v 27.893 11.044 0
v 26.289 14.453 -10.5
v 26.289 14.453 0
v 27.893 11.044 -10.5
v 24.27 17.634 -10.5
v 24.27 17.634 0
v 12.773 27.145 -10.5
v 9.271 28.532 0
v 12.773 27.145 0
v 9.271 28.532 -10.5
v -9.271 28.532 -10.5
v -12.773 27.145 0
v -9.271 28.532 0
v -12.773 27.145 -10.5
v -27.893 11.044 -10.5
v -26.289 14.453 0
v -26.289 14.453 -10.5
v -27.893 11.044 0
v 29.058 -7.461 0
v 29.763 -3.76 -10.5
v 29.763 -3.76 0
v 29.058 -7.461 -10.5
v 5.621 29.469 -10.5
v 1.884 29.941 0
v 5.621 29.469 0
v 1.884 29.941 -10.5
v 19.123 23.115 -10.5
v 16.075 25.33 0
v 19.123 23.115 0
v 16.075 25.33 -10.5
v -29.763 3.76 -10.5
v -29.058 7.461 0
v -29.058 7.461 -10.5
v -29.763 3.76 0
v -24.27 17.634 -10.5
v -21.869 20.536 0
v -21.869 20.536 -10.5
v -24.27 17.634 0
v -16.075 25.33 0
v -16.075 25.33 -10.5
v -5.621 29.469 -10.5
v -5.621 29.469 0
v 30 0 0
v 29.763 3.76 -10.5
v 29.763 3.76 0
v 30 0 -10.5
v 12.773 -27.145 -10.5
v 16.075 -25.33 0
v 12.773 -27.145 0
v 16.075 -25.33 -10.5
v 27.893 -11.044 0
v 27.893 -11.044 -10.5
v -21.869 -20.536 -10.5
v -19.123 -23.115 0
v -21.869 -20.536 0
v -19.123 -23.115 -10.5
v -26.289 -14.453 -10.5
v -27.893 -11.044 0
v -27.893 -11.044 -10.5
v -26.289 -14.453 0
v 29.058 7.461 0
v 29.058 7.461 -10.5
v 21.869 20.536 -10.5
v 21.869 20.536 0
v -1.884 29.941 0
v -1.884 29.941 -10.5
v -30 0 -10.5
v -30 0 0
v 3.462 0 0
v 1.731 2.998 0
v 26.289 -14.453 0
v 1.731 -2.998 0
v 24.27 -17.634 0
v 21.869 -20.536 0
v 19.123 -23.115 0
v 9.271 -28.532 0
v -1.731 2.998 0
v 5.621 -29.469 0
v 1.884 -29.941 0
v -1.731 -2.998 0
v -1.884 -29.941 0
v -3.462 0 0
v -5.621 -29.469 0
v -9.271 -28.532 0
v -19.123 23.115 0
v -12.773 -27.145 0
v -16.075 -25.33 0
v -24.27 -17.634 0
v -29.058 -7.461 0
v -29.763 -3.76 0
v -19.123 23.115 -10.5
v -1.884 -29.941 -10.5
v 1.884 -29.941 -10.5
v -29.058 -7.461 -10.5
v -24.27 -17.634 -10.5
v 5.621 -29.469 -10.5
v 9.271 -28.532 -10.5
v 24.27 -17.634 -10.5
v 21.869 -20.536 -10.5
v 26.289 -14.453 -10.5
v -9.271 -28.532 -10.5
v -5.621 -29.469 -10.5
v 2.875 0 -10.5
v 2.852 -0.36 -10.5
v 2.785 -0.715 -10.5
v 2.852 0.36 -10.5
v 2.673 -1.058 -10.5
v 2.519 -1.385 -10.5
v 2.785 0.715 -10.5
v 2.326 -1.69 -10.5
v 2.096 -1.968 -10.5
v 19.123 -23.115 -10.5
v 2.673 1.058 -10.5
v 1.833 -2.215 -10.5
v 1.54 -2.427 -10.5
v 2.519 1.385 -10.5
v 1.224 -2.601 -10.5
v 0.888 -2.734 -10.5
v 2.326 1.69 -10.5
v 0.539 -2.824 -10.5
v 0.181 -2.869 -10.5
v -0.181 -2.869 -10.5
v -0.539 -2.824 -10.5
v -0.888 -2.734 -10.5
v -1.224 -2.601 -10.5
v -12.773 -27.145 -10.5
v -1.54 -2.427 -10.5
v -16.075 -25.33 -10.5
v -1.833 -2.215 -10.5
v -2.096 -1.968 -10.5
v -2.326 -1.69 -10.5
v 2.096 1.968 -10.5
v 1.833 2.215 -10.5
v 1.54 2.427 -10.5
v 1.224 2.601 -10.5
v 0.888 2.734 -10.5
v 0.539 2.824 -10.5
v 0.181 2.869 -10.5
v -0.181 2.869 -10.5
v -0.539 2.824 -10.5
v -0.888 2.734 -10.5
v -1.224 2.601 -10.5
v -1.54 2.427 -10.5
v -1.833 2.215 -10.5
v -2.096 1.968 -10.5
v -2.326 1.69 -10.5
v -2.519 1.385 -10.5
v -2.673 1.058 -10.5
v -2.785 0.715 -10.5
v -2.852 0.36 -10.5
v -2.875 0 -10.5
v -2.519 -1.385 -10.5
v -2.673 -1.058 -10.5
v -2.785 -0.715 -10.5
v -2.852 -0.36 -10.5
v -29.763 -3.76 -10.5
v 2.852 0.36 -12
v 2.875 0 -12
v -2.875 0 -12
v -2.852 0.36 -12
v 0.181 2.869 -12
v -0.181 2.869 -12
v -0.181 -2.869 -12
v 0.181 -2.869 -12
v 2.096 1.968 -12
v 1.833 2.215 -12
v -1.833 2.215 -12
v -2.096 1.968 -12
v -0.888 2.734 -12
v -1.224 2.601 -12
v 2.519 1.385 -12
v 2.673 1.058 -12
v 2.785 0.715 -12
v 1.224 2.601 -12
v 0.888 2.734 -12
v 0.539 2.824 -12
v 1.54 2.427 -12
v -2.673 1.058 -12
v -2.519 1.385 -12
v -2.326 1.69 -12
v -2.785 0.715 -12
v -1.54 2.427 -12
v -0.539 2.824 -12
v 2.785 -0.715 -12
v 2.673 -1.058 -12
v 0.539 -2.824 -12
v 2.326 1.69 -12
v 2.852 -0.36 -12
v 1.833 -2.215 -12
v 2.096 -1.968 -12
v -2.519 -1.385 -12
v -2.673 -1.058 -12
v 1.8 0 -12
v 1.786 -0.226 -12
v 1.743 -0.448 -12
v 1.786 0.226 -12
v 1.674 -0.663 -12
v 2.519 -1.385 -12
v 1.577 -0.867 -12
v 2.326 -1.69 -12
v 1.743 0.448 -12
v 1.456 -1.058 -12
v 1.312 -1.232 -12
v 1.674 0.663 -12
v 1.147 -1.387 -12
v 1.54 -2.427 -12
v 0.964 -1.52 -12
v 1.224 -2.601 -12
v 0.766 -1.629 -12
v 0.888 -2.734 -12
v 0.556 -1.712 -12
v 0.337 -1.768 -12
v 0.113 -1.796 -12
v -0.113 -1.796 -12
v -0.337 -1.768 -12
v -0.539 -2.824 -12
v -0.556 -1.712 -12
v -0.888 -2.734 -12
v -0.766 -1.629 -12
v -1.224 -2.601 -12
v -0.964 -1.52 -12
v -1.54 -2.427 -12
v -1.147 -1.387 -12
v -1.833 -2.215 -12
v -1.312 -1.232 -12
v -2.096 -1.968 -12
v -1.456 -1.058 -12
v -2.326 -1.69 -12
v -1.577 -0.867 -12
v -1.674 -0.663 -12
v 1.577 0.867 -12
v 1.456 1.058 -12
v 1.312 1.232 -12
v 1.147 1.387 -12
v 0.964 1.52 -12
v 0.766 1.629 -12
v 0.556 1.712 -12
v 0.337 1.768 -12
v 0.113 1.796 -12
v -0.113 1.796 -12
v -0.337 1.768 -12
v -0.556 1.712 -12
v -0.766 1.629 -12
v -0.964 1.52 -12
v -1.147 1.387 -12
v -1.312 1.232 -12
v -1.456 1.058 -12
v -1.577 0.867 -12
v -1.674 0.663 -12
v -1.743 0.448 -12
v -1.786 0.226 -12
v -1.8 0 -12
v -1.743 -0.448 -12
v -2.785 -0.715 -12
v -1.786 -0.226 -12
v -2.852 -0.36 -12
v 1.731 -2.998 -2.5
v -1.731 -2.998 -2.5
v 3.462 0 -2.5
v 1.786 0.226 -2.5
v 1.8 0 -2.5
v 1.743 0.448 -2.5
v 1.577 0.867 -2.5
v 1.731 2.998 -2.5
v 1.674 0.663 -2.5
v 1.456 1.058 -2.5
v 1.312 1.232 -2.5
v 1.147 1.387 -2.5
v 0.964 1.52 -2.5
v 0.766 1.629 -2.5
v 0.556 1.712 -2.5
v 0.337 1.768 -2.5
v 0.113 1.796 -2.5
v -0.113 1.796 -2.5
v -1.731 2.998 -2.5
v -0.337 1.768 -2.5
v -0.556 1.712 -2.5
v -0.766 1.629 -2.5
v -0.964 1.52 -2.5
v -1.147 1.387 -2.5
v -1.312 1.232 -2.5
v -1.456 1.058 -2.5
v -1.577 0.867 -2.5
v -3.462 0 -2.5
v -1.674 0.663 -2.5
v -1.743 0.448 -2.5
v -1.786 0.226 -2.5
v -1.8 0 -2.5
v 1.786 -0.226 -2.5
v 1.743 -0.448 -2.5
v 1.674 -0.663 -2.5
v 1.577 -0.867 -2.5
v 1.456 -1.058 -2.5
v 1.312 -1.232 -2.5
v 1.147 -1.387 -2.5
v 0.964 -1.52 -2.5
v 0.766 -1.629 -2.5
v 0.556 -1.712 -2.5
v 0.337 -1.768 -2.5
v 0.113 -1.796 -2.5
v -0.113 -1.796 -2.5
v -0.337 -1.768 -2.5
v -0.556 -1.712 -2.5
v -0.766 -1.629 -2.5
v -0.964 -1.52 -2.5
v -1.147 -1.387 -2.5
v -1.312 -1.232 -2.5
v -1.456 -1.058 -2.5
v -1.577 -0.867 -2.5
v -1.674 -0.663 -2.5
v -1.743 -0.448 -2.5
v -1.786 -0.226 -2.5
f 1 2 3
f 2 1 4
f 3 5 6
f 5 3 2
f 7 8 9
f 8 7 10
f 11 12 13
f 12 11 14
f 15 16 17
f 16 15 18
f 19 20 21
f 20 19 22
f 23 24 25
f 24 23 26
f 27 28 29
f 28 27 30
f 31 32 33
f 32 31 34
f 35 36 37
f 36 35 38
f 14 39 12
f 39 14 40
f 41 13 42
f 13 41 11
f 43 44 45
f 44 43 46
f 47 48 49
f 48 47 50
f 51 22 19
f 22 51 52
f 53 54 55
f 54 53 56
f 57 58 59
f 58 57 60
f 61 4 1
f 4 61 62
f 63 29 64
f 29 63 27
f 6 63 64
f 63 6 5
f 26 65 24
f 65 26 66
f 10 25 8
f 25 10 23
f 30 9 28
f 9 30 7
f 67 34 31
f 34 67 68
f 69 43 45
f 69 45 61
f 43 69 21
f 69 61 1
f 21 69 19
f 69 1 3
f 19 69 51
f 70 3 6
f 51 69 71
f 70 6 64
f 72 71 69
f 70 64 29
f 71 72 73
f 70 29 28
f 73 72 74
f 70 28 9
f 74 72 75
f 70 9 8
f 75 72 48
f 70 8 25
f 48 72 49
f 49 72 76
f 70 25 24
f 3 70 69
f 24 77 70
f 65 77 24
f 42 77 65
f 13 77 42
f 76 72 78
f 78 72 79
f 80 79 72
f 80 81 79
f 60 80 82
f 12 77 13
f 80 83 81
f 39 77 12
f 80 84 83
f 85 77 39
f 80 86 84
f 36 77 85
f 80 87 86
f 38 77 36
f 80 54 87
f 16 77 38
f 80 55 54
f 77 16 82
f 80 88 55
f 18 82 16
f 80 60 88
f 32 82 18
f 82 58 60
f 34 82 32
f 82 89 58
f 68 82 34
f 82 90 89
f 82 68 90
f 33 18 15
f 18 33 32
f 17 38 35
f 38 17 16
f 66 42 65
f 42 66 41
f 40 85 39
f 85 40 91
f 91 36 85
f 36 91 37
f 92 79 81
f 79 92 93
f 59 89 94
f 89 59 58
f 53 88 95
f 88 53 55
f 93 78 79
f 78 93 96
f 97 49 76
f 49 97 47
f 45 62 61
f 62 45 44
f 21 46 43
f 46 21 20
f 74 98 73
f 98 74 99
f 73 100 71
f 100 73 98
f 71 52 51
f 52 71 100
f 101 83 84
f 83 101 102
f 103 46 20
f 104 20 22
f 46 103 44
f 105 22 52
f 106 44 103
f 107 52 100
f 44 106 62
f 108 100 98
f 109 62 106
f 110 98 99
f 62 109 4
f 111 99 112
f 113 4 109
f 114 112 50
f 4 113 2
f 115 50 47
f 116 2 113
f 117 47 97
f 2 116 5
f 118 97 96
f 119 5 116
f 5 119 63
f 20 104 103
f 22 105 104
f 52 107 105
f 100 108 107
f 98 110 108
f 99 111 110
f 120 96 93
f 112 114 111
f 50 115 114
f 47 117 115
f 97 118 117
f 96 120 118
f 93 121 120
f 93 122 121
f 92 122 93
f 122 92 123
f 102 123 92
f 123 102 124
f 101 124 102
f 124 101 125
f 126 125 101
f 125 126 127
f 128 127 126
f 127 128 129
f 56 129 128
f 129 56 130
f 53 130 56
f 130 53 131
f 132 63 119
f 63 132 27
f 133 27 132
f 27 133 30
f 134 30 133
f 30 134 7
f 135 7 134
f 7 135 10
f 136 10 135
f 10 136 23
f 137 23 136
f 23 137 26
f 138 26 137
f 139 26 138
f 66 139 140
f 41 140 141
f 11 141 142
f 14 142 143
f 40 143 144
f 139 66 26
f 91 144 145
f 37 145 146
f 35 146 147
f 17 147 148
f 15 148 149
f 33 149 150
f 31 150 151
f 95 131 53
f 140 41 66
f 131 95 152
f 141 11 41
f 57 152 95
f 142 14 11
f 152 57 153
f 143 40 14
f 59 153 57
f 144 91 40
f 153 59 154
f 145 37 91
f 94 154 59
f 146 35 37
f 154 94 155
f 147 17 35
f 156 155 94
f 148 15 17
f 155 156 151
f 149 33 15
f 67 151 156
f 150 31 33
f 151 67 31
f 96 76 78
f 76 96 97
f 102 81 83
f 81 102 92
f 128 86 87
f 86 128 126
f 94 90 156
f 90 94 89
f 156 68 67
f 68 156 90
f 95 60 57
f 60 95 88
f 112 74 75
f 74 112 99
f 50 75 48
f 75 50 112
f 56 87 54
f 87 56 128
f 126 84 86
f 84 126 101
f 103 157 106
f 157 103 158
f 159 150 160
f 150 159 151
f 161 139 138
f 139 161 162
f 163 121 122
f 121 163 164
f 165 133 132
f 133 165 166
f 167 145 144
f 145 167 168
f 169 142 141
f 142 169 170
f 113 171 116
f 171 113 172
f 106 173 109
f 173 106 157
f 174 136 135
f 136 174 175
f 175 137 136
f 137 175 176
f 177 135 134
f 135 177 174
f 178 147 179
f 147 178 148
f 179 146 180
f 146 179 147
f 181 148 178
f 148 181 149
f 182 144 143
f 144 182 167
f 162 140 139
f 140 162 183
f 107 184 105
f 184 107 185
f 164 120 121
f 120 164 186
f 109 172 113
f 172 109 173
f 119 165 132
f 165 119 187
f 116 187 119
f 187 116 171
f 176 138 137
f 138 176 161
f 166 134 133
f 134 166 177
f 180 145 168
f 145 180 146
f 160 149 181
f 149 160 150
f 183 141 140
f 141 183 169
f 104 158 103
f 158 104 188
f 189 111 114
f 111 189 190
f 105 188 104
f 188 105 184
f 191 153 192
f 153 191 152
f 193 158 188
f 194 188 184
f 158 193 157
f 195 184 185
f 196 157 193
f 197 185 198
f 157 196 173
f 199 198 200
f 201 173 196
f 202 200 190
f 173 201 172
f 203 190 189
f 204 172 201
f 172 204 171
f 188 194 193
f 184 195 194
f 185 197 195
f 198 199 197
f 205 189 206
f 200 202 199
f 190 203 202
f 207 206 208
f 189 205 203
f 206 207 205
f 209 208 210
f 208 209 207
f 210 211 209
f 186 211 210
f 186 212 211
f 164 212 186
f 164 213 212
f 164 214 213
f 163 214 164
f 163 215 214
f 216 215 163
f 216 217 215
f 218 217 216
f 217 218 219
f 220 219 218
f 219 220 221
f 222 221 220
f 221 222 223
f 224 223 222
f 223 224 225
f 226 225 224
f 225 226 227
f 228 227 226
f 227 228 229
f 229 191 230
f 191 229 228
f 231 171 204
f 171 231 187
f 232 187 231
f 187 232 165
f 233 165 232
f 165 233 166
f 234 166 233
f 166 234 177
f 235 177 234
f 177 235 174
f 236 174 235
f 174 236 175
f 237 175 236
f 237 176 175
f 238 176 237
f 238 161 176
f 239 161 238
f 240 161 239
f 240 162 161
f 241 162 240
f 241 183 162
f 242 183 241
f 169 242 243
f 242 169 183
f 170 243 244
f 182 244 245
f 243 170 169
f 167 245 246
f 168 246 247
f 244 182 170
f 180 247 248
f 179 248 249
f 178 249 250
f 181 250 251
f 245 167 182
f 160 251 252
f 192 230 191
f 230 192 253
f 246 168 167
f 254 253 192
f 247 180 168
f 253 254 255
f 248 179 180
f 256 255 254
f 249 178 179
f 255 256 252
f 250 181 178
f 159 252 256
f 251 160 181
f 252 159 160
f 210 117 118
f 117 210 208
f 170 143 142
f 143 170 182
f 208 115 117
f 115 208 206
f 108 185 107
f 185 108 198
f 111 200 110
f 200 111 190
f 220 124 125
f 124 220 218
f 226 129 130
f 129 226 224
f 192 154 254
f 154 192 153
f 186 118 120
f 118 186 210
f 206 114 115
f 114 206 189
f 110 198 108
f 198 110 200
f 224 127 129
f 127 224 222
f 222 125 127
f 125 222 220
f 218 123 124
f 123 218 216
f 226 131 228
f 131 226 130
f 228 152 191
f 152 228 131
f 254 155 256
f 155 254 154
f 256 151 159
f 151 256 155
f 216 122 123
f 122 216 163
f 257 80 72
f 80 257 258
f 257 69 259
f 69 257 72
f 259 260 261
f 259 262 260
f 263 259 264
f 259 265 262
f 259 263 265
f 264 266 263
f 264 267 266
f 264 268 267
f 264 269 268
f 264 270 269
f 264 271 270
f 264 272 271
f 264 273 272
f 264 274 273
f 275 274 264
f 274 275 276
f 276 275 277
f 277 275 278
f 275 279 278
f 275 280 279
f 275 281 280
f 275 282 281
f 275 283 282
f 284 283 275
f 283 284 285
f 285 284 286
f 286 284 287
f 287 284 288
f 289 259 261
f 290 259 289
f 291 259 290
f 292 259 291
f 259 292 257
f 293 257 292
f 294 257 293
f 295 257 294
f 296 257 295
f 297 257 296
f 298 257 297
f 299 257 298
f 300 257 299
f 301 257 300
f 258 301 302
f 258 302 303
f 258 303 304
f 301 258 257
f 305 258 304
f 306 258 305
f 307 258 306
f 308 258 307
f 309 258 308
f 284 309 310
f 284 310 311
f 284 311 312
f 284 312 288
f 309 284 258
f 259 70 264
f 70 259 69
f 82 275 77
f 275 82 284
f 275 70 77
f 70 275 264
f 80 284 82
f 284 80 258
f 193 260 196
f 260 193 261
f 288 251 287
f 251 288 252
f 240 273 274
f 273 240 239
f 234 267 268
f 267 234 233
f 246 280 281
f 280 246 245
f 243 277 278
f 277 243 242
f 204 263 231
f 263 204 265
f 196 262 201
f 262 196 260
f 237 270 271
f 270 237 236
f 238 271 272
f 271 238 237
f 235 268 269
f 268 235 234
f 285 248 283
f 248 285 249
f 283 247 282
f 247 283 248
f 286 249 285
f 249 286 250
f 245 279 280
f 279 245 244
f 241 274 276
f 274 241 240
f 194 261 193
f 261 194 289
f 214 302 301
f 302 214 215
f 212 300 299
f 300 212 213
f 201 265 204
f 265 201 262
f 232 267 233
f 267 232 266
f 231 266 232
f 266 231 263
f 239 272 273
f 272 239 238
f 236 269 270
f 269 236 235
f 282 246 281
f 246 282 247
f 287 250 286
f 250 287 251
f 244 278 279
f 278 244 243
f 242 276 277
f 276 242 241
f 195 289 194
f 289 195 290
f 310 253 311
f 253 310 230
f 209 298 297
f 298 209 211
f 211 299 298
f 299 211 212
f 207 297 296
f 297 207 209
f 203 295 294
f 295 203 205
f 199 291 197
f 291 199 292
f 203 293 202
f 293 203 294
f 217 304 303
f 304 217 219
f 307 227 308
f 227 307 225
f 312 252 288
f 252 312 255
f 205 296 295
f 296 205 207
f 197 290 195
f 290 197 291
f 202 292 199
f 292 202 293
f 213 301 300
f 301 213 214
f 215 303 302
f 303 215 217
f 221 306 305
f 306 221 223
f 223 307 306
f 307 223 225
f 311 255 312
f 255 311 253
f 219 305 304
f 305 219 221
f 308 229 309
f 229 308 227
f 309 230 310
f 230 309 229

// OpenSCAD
$fn = 50;

difference() {
	union() {
		translate(v = [0, 0, -10.5]) {
			cylinder(h = 10.5, r = 30.0);
		}
		#translate(v = [0, 0, -12.0]) {
			cylinder(h = 12, r = 2.875);
		}
	}
	union() {
		translate(v = [0, 0, 0]) {
			rotate(a = [0, 0, 0]) {
				difference() {
					union() {
						translate(v = [0, 0, -2.5]) {
							linear_extrude(height = 2.5) {
								polygon(points = [[3.4619999999999997, 0.0], [1.7310000000000003, 2.9981799479017264], [-1.7309999999999992, 2.9981799479017264], [-3.4619999999999997, 4.2397272186481365e-16], [-1.7310000000000014, -2.998179947901726], [1.7309999999999977, -2.9981799479017277]]);
							}
						}
					}
					union();
				}
			}
		}
		#translate(v = [0, 0, -100.0]) {
			cylinder(h = 200, r = 1.8);
		}
	}
}
